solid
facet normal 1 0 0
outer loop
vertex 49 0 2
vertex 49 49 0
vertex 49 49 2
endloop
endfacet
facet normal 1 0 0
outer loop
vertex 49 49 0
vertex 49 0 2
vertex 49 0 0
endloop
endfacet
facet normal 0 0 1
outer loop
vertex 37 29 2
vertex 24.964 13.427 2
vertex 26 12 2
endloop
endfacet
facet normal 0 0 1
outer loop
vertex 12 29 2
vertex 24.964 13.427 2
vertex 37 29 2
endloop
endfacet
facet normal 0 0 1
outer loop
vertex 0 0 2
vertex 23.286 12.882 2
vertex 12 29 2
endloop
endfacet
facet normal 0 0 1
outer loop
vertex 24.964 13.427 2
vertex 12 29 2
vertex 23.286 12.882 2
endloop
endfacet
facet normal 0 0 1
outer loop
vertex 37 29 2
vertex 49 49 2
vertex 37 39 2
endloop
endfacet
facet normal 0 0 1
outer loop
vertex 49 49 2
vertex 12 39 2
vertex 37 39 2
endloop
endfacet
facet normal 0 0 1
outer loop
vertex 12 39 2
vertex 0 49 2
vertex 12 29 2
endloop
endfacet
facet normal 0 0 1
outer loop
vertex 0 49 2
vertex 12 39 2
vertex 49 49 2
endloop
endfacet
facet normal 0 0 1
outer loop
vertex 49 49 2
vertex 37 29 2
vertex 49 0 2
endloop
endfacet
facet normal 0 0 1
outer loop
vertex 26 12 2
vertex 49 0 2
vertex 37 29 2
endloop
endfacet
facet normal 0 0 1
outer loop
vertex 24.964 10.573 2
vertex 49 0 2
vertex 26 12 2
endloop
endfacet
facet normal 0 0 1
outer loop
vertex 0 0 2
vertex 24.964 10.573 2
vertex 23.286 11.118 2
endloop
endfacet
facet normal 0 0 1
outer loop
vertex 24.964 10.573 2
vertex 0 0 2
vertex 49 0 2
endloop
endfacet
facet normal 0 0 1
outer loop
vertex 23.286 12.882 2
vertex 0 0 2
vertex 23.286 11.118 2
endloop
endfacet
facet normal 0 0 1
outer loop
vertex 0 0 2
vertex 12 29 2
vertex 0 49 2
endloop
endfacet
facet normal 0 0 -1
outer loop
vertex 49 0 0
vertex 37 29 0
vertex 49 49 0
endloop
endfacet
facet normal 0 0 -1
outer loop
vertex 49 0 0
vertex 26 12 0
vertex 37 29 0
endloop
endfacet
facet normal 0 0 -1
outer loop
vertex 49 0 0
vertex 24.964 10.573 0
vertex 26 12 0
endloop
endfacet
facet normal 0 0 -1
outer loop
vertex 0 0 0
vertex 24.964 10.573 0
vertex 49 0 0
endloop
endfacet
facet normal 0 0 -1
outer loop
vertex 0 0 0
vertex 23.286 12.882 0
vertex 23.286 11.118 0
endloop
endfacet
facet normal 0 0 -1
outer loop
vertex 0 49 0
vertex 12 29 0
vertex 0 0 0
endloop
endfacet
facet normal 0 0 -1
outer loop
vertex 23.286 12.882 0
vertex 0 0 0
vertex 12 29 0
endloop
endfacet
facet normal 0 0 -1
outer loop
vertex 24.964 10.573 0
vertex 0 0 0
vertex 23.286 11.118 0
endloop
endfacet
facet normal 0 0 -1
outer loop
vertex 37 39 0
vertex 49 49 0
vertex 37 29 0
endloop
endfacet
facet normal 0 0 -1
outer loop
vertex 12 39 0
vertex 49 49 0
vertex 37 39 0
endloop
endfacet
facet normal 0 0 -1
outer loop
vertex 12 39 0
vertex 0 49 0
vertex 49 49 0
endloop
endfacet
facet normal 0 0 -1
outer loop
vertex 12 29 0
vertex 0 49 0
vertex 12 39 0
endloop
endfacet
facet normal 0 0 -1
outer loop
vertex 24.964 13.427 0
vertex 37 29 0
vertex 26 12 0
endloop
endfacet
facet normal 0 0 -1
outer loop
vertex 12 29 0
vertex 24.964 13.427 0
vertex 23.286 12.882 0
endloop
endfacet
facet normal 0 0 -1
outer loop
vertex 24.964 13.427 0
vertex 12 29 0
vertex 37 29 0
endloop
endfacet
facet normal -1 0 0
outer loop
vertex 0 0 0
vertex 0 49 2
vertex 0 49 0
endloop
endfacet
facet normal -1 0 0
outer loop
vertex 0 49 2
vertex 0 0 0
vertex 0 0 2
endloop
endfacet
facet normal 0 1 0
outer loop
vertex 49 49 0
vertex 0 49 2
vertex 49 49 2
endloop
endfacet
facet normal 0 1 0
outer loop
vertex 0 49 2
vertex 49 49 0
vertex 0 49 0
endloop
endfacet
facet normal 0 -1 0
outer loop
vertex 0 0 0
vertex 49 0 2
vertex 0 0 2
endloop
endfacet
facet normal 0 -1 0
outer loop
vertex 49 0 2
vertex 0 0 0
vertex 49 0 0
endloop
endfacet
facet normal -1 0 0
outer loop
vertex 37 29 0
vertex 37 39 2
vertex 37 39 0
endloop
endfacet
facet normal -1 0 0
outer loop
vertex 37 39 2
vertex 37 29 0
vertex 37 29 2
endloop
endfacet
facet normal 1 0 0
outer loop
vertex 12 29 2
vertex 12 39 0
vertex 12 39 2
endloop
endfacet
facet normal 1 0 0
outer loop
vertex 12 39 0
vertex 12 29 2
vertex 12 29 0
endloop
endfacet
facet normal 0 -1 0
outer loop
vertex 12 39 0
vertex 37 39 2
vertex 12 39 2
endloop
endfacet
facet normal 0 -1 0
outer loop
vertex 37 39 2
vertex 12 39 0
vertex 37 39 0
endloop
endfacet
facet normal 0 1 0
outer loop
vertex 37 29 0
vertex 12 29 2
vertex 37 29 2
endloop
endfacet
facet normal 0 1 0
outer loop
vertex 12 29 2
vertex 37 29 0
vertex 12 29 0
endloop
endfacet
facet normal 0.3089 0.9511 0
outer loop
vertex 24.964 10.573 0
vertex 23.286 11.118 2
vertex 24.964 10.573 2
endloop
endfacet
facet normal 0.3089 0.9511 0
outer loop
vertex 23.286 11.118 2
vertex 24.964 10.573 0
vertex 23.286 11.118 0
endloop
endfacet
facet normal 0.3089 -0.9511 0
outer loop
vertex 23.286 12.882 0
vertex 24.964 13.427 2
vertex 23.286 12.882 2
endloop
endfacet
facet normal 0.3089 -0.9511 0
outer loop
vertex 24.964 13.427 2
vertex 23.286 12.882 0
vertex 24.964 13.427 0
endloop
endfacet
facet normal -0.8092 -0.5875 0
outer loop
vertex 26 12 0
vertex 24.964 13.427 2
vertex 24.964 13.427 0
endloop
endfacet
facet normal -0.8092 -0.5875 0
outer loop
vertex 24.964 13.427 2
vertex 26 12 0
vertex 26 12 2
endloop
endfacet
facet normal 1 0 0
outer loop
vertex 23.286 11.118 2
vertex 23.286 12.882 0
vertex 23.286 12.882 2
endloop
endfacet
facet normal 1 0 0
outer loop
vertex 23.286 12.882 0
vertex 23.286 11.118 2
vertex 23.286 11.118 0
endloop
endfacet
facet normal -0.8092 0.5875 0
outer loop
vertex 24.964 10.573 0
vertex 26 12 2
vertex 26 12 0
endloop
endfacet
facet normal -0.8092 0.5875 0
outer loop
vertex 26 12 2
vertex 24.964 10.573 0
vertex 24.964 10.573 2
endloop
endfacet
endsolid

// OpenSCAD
// width/side is x
// height/top is y
// depth is z

faceplate_side = 49;
wood_thickness = 2;
knob_hole = 3;
smidge = 2;

window_height = 10;
window_width = 25;

knob_distance_from_top = 37;

window_distance_from_top = 10;
window_center_x = faceplate_side/2 - window_width/2;
window_center_y = faceplate_side - window_distance_from_top - window_height;

module window_hole() {
  translate([window_center_x, window_center_y, -smidge]) {
    cube([window_width, window_height, (wood_thickness + (2*smidge))]);
  }
}

module faceplate() {
  cube([faceplate_side,faceplate_side,wood_thickness]);
}

module knob_hole() {
  translate([faceplate_side/2, faceplate_side - knob_distance_from_top, 0]) { 
    cylinder(h = wood_thickness + smidge, d = knob_hole);
    }
  }

difference() {
  faceplate();
  window_hole();
  knob_hole();
  }
